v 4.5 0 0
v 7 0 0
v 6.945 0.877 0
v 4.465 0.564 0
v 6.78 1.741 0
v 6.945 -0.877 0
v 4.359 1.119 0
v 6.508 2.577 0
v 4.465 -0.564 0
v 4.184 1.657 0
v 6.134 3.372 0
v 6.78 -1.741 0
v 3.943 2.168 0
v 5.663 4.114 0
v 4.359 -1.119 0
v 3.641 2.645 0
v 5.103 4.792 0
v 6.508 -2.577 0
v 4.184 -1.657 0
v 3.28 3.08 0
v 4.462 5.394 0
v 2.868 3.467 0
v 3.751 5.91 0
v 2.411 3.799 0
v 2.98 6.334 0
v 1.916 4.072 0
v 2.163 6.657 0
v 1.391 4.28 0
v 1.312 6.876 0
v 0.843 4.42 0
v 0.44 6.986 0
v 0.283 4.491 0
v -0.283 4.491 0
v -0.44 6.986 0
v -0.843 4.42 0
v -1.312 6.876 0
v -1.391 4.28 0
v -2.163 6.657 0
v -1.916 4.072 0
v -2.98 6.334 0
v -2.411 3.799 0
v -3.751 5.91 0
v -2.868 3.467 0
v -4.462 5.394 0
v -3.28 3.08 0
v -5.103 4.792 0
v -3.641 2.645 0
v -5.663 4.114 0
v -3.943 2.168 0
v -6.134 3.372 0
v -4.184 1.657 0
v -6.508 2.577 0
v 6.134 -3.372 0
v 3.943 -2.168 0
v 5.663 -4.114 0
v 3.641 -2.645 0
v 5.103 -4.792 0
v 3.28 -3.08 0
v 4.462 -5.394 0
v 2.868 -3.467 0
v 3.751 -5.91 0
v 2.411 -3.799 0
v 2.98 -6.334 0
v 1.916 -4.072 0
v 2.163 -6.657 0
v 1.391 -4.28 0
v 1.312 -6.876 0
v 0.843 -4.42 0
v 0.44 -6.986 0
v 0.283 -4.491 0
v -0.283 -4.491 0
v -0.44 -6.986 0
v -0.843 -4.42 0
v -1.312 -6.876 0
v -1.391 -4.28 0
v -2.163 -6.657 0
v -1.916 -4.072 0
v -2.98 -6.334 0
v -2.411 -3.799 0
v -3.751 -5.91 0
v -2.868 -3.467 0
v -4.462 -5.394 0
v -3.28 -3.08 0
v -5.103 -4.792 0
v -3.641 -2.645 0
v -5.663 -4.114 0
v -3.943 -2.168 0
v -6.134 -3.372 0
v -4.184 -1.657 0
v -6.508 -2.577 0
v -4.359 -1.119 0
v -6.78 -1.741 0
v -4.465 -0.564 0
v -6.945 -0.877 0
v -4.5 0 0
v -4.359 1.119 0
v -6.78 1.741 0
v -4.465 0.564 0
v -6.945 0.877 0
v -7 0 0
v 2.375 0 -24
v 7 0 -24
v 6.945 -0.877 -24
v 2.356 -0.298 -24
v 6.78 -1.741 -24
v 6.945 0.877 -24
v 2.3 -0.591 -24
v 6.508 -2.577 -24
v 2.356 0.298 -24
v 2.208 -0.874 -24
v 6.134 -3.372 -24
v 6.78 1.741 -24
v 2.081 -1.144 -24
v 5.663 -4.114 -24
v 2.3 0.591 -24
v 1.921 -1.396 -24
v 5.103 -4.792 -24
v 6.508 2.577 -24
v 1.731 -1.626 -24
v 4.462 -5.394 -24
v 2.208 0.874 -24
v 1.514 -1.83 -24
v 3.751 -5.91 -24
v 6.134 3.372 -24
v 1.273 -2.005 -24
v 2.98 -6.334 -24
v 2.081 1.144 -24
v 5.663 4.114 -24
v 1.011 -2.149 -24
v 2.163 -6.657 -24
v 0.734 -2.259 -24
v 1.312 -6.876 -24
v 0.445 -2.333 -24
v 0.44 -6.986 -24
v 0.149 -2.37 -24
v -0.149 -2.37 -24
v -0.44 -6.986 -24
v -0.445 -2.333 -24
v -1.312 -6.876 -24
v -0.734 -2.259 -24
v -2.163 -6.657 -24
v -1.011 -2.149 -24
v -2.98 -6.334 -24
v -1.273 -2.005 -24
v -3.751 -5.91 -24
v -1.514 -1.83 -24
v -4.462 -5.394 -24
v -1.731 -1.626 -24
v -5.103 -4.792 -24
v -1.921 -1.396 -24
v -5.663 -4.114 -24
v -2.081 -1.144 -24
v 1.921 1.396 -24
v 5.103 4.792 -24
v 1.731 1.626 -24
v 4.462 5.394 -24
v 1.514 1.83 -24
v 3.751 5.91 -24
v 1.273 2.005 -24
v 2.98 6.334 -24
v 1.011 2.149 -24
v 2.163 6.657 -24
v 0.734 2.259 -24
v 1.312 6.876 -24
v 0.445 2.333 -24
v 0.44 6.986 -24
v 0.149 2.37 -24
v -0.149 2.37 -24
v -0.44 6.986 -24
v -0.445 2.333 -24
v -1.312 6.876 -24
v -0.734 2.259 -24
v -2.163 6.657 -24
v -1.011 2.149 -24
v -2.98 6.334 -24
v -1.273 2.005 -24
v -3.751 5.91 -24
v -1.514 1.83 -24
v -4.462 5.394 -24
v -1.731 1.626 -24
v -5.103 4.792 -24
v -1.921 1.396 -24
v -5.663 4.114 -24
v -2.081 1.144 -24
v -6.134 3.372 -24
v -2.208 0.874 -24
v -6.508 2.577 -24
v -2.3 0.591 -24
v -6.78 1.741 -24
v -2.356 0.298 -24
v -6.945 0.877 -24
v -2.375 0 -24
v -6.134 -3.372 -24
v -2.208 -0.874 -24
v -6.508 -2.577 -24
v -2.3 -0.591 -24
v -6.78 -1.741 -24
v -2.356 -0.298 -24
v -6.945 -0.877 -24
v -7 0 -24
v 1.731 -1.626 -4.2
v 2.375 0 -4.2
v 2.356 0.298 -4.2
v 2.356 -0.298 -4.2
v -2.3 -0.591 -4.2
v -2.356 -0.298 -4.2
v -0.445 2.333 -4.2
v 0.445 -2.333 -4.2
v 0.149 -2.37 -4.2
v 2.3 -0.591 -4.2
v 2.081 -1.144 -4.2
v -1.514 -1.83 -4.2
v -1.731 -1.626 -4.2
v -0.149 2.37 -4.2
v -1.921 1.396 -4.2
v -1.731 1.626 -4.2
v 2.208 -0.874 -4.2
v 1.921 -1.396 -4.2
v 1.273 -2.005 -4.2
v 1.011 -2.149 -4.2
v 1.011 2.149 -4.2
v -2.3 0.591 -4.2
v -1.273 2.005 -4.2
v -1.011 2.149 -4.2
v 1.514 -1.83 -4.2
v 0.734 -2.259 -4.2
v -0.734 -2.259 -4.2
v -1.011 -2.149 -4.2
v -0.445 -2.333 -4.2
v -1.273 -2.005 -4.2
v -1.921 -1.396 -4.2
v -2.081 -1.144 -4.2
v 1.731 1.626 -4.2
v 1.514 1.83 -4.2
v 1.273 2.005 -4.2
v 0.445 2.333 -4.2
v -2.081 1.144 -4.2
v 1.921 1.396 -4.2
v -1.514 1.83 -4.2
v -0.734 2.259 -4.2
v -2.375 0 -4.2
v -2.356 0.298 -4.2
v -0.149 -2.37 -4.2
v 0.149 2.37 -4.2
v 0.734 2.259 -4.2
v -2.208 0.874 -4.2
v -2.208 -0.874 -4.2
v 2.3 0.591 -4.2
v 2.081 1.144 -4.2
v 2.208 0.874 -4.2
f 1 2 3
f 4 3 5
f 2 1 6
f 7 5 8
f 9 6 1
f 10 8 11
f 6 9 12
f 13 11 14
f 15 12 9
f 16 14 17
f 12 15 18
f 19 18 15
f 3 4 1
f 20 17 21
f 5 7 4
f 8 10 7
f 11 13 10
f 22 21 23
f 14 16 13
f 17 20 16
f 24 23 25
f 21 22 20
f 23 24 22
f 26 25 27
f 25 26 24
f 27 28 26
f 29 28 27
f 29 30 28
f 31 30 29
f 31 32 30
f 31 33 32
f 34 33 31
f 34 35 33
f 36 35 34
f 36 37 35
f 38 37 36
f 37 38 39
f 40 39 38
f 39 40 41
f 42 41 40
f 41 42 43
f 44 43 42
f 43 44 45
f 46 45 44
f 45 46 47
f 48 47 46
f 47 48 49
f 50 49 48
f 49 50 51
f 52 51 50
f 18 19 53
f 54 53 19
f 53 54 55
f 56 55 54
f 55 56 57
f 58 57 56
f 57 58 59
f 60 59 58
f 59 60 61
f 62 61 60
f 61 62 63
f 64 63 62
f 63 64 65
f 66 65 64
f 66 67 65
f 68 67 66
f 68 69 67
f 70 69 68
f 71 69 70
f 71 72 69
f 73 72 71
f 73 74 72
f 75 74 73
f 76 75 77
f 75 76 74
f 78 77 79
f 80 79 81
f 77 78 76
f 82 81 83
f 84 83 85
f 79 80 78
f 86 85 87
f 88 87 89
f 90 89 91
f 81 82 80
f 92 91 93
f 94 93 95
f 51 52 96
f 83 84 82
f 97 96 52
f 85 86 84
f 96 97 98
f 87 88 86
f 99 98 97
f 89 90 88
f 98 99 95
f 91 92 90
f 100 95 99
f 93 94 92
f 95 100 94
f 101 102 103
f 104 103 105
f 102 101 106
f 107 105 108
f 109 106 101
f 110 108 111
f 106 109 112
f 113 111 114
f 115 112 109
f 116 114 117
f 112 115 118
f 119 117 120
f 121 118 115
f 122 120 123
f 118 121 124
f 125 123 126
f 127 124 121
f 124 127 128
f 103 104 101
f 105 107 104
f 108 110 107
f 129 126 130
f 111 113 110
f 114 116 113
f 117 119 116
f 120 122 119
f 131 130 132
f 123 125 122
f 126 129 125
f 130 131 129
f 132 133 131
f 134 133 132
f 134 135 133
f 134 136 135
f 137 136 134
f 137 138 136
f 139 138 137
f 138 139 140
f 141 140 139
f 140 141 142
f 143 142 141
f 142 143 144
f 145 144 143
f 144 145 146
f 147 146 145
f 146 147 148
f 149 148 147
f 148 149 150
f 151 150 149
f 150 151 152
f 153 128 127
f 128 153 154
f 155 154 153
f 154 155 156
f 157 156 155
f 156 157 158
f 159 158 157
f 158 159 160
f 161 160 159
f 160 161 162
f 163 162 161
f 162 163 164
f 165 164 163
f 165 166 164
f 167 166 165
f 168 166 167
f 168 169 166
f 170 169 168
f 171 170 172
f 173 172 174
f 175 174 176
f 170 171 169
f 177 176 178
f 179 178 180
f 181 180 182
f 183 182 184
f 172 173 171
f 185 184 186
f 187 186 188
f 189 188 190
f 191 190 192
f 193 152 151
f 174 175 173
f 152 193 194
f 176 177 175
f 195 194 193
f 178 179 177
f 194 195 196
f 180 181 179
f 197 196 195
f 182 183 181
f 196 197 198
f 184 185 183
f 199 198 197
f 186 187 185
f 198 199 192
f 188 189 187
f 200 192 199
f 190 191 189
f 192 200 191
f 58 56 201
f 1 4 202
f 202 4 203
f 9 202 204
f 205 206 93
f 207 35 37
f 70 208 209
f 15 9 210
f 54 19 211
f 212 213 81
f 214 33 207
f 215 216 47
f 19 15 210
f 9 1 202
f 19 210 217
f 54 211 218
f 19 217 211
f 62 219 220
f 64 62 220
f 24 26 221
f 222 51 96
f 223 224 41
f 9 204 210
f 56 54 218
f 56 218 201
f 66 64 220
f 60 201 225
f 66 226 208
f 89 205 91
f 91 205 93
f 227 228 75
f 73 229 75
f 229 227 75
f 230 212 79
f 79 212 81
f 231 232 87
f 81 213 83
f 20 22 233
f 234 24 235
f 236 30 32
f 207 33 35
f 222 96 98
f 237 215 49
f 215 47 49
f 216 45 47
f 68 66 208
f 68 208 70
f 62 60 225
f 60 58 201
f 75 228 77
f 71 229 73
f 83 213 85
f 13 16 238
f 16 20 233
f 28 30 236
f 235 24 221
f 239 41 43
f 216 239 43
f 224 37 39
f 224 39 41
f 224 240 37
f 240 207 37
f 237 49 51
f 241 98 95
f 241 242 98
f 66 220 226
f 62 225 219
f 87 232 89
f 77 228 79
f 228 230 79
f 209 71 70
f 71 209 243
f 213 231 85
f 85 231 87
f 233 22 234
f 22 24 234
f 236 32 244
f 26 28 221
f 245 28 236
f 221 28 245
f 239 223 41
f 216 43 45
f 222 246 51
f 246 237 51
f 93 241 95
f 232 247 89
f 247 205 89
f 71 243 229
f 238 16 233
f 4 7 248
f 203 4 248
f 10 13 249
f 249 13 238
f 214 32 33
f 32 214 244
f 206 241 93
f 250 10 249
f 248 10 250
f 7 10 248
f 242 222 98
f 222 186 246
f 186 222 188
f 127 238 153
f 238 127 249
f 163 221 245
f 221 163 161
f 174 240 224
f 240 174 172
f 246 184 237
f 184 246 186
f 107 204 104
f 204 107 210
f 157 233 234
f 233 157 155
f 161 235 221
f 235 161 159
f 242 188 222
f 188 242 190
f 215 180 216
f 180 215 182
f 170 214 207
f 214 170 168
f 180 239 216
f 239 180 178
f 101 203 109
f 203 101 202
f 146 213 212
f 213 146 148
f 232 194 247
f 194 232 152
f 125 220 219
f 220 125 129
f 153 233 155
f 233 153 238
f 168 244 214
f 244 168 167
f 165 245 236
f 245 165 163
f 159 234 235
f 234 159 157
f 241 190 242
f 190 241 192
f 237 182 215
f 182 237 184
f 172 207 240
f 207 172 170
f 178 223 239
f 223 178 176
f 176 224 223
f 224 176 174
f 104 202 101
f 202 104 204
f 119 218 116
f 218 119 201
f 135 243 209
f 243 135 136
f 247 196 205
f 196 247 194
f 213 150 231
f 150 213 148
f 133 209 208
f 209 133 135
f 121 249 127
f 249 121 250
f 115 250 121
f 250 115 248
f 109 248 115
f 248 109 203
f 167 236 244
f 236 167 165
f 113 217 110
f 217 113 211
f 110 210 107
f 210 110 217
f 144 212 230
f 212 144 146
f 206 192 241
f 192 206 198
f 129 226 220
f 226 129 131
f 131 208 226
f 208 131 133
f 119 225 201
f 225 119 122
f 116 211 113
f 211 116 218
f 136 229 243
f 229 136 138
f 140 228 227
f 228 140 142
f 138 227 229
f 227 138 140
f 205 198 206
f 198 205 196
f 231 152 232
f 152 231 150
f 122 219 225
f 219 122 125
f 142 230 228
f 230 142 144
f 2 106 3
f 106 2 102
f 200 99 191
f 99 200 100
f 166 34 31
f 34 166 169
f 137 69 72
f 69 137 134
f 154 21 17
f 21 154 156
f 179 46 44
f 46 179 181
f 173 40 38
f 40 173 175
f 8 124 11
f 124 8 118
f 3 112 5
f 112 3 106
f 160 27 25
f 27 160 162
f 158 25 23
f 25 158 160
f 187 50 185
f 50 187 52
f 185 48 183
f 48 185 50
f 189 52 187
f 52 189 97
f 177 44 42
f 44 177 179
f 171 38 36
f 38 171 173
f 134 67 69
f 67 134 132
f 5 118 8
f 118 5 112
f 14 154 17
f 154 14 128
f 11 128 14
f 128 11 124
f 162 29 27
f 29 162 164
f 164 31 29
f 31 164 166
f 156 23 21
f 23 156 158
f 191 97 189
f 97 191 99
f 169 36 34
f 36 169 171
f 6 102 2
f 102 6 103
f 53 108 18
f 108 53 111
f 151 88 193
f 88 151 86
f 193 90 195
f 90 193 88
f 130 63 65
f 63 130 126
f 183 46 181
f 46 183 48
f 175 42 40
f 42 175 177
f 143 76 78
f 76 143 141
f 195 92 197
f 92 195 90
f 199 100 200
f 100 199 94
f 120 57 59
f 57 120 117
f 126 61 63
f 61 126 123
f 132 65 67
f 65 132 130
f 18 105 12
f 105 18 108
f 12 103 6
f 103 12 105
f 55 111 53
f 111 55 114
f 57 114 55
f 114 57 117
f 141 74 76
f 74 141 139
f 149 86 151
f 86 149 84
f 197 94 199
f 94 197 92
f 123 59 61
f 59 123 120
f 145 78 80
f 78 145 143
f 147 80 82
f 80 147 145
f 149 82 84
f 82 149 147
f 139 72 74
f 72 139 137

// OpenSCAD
$fn = 50;


difference() {
	union() {
		translate(v = [0, 0, -24.0000000000]) {
			cylinder(h = 24, r = 7.0000000000);
		}
		cylinder(h = 0, r = 16.0000000000);
	}
	union() {
		translate(v = [0, 0, 0]) {
			rotate(a = [0, 0, 0]) {
				difference() {
					union() {
						#translate(v = [0, 0, -24.0000000000]) {
							cylinder(h = 24, r = 2.2500000000);
						}
						#translate(v = [0, 0, -4.2000000000]) {
							cylinder(h = 4.2000000000, r1 = 2.3750000000, r2 = 4.5000000000);
						}
						#translate(v = [0, 0, -24.0000000000]) {
							cylinder(h = 24, r = 2.3750000000);
						}
						#translate(v = [0, 0, -24.0000000000]) {
							cylinder(h = 24, r = 2.2500000000);
						}
					}
					union();
				}
			}
		}
	}
}
